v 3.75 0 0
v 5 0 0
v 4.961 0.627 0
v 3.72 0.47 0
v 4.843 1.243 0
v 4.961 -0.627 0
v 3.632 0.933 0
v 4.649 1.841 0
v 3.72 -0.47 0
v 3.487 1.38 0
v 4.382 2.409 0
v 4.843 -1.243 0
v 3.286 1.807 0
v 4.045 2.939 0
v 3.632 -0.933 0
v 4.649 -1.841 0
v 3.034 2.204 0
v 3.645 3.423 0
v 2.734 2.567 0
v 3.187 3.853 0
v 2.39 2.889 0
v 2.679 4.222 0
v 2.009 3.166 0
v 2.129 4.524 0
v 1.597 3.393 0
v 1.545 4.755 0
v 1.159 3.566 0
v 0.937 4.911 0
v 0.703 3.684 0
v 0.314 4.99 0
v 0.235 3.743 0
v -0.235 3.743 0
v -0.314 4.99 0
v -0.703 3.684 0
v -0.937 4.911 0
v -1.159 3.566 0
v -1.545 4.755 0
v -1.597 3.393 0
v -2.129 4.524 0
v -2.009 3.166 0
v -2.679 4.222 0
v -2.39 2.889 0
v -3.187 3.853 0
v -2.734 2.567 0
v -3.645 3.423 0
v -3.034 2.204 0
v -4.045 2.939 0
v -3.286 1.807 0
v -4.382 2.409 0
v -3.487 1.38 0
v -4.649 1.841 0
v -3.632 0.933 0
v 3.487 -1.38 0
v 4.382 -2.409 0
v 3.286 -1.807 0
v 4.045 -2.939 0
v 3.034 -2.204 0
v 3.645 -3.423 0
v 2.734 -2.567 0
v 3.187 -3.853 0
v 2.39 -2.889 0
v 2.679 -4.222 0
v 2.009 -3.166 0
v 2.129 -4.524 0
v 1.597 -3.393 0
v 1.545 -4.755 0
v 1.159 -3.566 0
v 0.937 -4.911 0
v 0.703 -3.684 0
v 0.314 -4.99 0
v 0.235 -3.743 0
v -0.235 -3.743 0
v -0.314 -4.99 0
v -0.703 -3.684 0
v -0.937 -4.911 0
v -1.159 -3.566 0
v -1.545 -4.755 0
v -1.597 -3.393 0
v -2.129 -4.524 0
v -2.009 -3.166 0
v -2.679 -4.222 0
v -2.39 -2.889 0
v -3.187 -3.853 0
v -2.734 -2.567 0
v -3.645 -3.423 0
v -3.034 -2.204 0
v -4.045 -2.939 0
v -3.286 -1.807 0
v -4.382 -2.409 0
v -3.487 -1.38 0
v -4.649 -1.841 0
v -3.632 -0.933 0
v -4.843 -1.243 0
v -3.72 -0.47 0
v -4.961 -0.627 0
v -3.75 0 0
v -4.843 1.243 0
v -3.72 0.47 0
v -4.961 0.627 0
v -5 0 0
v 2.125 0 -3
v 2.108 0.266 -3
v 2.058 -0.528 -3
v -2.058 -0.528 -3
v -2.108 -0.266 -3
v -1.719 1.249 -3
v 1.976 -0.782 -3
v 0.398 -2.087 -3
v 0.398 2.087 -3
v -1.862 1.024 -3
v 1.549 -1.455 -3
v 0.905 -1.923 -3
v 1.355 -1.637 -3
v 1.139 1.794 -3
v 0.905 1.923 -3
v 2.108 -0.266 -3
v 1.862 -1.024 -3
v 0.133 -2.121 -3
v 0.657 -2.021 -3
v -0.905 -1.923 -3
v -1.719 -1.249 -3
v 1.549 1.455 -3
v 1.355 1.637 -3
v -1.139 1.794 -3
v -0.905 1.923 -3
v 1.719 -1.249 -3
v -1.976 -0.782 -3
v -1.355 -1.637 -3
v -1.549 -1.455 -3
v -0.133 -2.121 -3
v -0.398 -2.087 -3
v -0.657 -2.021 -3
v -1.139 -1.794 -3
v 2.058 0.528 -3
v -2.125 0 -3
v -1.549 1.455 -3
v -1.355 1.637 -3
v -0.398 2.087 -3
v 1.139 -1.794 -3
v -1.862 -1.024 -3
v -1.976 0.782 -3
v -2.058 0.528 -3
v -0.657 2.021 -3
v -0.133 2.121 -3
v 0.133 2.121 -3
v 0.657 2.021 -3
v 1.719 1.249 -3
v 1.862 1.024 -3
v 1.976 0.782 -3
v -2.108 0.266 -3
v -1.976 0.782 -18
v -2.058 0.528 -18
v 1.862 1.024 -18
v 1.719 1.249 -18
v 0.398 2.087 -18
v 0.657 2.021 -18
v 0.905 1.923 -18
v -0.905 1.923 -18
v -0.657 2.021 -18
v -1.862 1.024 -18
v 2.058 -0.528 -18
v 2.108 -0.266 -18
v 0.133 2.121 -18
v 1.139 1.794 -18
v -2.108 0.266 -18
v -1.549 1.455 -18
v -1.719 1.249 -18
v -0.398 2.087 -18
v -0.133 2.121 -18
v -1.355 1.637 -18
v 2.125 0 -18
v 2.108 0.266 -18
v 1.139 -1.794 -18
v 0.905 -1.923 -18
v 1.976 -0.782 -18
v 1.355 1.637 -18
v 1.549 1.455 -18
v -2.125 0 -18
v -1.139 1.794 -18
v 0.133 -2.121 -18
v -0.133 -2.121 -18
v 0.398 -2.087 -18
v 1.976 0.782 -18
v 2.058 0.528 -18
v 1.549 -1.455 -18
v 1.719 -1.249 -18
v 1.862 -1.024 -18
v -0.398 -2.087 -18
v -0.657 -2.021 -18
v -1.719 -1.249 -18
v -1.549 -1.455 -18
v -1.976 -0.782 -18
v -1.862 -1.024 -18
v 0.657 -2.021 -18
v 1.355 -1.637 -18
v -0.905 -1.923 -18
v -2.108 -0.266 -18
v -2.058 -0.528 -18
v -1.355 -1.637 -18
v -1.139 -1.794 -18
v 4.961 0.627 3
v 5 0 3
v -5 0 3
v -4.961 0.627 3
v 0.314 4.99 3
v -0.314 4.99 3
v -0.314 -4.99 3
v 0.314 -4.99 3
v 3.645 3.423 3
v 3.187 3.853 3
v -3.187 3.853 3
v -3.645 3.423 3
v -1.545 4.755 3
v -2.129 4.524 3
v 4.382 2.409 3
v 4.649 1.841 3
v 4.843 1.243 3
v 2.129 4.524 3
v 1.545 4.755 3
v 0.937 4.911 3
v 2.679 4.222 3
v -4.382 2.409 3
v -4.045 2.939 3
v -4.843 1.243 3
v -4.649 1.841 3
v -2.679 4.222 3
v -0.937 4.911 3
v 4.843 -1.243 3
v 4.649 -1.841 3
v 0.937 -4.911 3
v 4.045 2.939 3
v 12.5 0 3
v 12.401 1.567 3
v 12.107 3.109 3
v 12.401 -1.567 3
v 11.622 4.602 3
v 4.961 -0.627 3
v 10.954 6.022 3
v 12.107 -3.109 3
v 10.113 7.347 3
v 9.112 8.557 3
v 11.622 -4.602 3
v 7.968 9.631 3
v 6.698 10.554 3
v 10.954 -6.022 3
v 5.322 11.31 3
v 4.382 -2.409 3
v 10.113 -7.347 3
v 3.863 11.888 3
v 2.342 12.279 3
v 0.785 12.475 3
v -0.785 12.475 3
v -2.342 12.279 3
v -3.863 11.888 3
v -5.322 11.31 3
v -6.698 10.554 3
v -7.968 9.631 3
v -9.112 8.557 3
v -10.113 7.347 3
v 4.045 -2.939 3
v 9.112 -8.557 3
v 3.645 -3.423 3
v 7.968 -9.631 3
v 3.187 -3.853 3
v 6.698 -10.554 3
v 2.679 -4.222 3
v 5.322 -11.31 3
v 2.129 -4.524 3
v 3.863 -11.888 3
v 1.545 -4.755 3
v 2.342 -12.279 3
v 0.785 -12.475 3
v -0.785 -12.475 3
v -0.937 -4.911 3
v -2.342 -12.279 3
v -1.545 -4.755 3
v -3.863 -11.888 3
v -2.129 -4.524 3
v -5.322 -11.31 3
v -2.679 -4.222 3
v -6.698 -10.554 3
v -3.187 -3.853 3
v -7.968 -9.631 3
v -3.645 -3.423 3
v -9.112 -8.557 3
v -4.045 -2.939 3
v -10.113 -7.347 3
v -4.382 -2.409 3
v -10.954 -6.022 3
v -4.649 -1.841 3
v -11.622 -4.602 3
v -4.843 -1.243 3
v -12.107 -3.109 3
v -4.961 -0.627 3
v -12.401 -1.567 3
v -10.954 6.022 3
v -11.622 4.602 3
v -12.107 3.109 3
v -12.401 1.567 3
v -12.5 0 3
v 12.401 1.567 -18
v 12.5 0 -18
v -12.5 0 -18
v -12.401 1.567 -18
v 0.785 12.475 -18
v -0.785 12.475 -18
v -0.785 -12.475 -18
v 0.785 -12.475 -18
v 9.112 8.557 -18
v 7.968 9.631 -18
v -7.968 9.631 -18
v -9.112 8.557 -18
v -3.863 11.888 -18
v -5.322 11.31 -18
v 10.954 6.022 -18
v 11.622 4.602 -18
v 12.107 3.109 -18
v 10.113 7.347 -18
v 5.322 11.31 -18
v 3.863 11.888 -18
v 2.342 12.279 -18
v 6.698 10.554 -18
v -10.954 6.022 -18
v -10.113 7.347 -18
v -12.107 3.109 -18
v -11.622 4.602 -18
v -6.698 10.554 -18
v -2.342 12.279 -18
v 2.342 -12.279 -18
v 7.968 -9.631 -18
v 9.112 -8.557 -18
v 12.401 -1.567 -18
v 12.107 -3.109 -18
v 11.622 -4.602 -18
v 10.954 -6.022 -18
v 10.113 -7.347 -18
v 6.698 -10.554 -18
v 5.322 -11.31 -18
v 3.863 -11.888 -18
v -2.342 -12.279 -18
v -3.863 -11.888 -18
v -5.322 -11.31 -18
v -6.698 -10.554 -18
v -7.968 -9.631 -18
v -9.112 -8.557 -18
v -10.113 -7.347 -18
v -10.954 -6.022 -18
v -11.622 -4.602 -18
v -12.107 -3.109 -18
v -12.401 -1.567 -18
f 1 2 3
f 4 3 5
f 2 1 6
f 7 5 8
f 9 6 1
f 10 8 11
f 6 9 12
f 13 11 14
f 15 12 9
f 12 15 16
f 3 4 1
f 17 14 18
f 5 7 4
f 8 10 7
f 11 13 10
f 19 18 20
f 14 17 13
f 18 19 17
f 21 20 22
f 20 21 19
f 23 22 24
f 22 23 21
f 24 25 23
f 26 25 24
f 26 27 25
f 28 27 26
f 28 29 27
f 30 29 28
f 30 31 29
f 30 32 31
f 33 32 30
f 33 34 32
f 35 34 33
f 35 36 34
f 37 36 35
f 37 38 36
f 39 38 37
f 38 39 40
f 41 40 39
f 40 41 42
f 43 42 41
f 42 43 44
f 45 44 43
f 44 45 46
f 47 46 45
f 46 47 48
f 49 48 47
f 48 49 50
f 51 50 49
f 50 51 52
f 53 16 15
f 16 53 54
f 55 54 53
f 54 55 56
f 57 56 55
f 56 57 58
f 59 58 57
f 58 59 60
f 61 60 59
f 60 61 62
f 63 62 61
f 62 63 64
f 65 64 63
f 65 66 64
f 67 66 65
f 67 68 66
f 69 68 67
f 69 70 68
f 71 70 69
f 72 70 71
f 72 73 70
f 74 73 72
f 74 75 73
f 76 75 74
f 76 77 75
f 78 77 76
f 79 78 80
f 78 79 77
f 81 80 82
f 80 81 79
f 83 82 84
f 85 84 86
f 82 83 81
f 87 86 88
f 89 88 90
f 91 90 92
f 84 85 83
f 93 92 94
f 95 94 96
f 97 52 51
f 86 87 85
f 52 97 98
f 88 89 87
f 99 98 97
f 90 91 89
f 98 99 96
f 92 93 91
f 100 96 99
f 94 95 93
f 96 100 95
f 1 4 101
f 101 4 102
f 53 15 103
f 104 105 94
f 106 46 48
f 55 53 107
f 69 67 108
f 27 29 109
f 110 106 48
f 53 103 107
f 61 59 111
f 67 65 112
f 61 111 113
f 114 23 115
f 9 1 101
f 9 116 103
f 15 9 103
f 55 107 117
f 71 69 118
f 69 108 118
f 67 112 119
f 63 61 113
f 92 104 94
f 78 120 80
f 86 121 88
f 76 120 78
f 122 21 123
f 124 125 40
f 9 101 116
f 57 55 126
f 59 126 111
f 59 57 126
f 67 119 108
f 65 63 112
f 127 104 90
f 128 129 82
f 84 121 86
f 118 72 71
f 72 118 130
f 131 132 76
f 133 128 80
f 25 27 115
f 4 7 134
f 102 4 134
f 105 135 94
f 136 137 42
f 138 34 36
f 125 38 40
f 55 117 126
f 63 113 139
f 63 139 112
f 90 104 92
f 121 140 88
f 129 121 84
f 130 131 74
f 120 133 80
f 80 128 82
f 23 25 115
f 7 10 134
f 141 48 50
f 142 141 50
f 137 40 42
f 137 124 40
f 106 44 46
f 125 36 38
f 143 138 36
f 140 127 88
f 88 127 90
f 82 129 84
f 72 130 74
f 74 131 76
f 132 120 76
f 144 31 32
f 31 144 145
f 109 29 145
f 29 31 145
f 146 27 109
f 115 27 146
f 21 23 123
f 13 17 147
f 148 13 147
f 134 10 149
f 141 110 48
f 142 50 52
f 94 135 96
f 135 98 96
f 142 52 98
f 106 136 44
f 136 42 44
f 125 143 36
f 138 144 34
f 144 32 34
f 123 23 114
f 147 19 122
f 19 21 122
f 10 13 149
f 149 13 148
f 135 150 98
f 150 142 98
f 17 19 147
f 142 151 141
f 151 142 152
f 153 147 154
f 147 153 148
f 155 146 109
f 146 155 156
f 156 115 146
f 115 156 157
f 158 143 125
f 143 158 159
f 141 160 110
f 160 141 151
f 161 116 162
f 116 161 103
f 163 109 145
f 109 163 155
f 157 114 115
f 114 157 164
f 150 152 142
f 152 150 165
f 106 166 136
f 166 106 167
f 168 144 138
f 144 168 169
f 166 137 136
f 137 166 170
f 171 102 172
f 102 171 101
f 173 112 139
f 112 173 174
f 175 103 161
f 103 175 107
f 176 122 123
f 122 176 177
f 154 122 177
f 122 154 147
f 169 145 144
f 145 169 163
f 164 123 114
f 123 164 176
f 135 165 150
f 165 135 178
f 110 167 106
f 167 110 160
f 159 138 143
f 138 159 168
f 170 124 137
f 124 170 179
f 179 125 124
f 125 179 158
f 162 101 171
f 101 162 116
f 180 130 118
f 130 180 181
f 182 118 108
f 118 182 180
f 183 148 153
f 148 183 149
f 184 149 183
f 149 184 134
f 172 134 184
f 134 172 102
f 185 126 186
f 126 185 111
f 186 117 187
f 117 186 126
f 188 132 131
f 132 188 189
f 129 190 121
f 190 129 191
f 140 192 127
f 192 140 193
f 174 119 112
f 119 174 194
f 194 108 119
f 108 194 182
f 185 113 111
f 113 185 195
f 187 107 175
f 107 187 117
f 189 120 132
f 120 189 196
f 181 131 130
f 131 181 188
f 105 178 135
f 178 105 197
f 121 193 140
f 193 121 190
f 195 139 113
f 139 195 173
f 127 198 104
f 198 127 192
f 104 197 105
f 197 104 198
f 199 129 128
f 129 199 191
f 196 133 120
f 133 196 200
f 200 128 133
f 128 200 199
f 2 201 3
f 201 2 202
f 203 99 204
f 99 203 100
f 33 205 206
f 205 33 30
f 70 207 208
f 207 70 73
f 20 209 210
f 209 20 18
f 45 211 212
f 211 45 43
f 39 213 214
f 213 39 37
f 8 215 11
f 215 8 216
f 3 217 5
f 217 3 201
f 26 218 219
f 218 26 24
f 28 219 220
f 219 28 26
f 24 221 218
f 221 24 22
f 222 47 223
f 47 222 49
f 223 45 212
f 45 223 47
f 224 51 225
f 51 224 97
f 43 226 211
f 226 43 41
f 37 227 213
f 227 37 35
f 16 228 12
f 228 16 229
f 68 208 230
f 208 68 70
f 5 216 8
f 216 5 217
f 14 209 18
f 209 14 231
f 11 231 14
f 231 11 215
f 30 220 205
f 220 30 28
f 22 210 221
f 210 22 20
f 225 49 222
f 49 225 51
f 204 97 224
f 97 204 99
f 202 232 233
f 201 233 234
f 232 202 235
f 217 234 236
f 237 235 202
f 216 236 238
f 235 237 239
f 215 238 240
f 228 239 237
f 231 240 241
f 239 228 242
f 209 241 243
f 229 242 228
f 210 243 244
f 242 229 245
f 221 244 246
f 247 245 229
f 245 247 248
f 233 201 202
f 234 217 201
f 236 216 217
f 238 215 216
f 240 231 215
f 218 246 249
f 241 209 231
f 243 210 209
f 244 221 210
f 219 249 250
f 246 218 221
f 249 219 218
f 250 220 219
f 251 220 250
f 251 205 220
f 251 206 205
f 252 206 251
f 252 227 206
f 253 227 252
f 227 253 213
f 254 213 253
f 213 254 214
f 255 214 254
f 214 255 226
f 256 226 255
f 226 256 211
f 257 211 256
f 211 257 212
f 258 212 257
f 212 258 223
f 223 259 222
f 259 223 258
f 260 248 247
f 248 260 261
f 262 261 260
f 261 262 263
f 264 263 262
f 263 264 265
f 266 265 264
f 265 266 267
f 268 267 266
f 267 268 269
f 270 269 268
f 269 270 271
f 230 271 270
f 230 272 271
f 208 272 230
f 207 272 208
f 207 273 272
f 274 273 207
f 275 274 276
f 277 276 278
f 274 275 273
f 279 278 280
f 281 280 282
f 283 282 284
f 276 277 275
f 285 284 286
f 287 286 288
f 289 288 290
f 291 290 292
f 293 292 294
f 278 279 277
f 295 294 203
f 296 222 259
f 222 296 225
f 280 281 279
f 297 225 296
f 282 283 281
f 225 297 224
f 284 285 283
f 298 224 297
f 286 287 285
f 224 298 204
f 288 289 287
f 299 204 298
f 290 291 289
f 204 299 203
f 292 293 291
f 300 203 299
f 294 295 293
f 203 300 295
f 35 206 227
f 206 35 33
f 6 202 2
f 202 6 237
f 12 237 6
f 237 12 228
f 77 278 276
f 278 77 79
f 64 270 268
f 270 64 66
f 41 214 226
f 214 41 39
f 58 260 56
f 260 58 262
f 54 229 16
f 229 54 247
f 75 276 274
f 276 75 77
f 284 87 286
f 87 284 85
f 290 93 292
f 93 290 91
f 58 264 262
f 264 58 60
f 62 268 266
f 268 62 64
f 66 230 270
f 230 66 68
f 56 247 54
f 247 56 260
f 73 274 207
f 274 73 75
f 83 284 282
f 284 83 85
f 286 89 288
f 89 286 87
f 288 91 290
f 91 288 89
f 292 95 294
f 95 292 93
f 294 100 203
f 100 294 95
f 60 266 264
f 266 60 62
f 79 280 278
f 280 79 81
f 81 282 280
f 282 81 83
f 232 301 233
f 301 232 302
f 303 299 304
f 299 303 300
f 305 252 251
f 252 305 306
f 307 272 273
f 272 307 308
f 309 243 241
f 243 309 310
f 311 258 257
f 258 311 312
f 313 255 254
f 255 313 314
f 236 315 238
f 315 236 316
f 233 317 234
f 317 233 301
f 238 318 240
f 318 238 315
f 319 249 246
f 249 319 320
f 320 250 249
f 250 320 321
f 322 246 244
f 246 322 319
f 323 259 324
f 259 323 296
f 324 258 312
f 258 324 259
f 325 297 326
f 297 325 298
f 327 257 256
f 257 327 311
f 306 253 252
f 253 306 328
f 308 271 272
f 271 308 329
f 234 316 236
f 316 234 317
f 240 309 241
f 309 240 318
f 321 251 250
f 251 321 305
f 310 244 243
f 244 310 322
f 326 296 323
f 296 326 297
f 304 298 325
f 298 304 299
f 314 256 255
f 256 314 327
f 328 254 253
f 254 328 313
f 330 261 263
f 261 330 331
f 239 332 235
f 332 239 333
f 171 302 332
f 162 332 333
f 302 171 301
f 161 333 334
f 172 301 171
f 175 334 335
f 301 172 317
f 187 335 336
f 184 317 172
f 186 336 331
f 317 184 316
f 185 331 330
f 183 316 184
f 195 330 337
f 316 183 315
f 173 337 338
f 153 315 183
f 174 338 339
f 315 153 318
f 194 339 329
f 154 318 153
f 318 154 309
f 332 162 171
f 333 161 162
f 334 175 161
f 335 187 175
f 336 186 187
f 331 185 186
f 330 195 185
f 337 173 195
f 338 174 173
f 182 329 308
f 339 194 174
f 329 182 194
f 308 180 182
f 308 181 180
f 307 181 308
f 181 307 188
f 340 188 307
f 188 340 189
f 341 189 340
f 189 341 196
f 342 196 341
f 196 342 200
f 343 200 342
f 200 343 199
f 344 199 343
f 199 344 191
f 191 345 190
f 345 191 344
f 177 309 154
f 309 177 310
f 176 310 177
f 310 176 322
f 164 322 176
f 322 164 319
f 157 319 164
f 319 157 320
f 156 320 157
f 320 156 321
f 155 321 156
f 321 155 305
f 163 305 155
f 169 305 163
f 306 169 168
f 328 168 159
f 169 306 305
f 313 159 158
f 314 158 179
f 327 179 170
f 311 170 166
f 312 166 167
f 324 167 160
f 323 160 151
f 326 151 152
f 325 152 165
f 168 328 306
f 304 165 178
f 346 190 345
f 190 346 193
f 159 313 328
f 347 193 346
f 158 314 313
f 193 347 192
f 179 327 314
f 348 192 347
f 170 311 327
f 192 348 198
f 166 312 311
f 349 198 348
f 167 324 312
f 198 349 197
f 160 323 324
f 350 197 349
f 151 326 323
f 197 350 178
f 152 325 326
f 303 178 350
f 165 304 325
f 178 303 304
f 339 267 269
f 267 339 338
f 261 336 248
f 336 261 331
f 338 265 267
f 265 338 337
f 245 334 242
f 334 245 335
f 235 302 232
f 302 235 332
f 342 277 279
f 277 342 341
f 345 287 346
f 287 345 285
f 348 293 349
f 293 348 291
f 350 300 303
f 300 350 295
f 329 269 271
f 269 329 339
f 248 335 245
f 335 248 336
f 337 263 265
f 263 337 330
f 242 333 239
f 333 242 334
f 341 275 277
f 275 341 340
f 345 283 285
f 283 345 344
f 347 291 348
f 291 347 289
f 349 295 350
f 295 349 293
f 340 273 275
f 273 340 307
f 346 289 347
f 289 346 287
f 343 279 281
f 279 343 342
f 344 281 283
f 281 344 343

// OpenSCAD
$fn = 50;

difference() {
	union() {
		translate(v = [0, 0, -18.0]) {
			cylinder(h = 21, r = 12.5);
		}
	}
	union() {
		translate(v = [0, 0, 0]) {
			rotate(a = [0, 0, 0]) {
				difference() {
					union() {
						translate(v = [0, 0, -21.0]) {
							cylinder(h = 21, r = 2.0);
						}
						translate(v = [0, 0, -3]) {
							cylinder(h = 3, r1 = 2.125, r2 = 3.75);
						}
						translate(v = [0, 0, -21.0]) {
							cylinder(h = 21, r = 2.125);
						}
						translate(v = [0, 0, -21.0]) {
							cylinder(h = 21, r = 2.0);
						}
					}
					union();
				}
			}
		}
		#cylinder(h = 3, r = 5.0);
	}
}
